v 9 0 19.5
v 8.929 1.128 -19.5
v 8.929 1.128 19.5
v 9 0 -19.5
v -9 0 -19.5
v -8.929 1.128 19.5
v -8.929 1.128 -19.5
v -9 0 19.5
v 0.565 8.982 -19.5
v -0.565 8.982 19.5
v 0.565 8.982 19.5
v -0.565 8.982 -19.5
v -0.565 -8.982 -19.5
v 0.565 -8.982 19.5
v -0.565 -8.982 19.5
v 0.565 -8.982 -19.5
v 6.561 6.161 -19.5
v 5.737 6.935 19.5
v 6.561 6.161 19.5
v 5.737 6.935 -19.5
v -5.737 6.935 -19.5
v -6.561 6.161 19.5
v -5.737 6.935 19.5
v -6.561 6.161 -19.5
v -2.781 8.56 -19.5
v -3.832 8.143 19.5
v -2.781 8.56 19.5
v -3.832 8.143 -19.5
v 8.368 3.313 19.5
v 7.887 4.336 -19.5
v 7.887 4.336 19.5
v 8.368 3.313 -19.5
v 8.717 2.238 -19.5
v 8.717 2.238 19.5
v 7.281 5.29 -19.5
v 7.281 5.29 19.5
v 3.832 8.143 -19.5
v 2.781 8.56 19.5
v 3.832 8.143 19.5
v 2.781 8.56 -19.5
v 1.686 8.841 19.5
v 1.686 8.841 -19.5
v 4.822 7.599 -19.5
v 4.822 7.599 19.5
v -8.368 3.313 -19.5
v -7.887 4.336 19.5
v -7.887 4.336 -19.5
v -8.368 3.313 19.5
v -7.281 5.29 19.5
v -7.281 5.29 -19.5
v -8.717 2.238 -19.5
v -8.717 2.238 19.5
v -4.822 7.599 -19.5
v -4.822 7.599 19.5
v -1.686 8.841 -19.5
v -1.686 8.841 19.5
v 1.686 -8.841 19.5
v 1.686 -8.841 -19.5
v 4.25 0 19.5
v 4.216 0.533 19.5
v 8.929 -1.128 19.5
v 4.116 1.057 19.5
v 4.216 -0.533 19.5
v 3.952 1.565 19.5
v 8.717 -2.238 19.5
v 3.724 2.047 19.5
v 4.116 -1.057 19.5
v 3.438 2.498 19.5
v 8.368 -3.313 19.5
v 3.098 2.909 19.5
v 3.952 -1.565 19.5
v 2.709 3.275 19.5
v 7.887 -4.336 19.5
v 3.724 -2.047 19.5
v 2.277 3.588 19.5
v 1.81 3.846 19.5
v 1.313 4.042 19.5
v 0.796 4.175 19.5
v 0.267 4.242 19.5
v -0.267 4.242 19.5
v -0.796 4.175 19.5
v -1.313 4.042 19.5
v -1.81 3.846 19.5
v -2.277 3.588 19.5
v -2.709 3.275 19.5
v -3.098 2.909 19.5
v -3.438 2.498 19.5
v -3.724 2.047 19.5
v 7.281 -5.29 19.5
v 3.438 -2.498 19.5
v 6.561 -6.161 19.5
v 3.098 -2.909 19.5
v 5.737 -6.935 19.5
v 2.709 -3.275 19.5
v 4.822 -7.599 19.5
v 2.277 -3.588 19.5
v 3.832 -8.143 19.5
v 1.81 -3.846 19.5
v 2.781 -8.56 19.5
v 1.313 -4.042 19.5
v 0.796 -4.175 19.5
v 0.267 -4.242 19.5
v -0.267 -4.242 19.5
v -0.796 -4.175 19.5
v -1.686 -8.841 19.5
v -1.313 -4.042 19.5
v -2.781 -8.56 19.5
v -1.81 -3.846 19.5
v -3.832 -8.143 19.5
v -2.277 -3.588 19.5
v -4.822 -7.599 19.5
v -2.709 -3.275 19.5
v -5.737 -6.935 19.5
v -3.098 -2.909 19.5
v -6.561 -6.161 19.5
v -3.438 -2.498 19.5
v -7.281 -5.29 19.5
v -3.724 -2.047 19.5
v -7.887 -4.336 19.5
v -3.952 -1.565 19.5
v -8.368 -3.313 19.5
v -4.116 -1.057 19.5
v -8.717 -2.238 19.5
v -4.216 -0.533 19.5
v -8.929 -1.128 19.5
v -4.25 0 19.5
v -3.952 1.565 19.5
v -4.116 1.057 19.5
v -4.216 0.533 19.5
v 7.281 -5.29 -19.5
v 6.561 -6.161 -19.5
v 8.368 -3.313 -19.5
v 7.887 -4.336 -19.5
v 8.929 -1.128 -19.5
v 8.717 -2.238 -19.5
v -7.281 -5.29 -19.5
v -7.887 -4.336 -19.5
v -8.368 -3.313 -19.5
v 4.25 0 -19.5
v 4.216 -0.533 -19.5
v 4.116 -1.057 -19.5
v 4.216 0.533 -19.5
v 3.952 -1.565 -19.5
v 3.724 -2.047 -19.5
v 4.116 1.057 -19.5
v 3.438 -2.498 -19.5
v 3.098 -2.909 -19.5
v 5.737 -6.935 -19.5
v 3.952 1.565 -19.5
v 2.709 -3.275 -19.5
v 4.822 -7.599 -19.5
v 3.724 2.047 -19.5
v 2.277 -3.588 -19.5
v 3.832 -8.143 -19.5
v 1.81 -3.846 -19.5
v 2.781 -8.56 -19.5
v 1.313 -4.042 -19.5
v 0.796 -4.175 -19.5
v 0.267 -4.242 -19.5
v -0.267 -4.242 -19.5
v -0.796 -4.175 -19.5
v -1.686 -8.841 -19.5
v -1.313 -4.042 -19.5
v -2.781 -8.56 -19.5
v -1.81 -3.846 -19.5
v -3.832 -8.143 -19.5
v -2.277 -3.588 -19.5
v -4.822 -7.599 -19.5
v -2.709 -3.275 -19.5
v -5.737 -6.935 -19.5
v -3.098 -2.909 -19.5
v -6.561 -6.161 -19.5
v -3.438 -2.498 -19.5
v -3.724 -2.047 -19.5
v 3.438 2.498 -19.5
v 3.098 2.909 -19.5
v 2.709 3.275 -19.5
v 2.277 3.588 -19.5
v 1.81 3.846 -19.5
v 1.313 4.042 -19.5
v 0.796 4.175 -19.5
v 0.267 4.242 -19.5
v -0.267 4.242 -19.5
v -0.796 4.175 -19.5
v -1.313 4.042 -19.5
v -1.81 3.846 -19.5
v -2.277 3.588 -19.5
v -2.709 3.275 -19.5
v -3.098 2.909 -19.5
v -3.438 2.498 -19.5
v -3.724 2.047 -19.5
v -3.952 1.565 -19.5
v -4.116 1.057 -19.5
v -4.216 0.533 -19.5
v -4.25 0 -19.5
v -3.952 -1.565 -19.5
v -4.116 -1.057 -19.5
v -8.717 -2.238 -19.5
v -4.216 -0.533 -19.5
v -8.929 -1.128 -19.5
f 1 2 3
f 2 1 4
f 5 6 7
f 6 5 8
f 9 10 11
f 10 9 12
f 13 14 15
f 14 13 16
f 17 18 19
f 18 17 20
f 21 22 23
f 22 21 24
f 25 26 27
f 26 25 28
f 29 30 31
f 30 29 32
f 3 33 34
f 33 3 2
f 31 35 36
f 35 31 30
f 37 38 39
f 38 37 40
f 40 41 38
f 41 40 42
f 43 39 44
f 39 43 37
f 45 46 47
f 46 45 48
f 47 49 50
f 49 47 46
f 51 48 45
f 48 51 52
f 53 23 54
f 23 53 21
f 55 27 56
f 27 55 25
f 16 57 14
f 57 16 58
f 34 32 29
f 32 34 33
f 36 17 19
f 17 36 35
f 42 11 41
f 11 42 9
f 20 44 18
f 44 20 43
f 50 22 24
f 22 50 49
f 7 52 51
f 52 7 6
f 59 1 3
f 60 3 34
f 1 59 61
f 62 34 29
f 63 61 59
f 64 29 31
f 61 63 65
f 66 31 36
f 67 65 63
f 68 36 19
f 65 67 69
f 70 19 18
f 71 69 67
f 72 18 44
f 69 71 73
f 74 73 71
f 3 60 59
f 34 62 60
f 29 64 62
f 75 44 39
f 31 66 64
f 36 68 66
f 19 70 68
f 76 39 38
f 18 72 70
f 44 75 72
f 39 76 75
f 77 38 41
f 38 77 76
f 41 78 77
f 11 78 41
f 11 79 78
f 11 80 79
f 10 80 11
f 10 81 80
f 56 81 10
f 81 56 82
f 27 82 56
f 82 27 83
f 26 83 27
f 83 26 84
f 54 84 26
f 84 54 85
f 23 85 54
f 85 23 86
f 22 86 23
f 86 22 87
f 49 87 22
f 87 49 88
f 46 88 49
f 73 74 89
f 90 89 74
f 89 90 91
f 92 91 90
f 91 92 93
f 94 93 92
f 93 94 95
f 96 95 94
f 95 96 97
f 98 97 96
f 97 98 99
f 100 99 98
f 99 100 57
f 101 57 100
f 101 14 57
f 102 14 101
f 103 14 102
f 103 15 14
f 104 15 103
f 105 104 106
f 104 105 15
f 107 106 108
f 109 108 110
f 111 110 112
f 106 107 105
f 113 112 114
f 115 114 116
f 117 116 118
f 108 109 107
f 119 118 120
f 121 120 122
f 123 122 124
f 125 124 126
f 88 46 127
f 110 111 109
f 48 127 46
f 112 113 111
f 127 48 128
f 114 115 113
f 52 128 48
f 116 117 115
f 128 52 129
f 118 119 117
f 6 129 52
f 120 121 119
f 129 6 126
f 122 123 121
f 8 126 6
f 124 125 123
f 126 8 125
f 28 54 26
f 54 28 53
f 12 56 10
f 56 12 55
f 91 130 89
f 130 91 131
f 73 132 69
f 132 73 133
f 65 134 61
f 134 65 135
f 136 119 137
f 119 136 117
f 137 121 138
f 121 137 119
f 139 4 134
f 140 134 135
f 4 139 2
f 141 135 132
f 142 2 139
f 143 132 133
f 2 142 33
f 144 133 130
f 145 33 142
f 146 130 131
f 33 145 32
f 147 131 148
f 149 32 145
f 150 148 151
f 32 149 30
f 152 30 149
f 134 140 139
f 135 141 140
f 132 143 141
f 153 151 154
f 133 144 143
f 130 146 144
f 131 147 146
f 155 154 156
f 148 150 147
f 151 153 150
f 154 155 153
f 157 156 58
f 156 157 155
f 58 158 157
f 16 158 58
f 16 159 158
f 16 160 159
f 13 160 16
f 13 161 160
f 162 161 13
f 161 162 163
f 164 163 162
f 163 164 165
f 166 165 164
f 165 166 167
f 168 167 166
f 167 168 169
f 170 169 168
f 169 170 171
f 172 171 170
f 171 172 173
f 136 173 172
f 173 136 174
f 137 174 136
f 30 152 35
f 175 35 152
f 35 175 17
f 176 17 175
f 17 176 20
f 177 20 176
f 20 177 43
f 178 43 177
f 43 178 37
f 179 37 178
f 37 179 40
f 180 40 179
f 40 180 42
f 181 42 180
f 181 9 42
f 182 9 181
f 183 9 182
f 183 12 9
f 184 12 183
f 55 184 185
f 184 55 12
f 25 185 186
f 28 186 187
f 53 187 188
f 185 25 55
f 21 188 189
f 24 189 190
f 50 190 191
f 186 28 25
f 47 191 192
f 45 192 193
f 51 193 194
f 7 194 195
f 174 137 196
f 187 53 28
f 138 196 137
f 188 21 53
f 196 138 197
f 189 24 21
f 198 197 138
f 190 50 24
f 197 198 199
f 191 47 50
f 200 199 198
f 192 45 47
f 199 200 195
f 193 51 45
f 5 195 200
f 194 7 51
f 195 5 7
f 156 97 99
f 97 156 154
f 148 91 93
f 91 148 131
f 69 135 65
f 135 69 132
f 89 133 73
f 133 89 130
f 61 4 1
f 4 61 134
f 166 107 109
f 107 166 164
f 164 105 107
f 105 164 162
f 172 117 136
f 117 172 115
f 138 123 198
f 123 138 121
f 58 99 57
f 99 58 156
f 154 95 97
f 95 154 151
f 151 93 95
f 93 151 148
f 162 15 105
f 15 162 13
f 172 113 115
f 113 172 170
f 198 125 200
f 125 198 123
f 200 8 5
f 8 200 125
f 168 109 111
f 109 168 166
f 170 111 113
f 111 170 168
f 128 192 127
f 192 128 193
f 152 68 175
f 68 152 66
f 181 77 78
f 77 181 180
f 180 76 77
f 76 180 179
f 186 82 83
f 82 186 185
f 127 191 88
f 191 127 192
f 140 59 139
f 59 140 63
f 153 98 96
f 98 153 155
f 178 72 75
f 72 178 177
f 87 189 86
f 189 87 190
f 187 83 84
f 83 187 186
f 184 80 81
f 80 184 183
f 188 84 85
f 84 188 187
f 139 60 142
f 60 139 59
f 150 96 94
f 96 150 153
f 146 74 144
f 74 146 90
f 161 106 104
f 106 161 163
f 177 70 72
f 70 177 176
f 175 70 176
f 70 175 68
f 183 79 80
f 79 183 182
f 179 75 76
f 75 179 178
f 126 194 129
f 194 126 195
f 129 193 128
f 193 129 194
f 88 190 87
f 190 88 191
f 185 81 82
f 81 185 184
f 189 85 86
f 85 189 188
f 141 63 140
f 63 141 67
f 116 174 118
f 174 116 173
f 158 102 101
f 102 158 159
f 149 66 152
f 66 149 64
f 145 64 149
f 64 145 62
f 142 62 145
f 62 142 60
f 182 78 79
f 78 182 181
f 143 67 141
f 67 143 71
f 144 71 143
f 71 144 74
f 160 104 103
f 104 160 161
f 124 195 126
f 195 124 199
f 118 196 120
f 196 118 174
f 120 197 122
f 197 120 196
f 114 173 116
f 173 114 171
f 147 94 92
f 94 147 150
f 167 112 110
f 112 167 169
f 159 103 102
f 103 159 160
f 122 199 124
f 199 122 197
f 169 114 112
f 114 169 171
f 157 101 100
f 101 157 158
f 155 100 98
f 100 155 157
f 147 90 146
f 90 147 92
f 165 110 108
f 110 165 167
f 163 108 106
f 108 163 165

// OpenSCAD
$fn = 50;


difference() {
	union() {
		translate(v = [0, 0, -19.5000000000]) {
			cylinder(h = 39, r = 9.0000000000);
		}
	}
	union() {
		translate(v = [0, 0, -100.0000000000]) {
			cylinder(h = 200, r = 4.2500000000);
		}
	}
}
